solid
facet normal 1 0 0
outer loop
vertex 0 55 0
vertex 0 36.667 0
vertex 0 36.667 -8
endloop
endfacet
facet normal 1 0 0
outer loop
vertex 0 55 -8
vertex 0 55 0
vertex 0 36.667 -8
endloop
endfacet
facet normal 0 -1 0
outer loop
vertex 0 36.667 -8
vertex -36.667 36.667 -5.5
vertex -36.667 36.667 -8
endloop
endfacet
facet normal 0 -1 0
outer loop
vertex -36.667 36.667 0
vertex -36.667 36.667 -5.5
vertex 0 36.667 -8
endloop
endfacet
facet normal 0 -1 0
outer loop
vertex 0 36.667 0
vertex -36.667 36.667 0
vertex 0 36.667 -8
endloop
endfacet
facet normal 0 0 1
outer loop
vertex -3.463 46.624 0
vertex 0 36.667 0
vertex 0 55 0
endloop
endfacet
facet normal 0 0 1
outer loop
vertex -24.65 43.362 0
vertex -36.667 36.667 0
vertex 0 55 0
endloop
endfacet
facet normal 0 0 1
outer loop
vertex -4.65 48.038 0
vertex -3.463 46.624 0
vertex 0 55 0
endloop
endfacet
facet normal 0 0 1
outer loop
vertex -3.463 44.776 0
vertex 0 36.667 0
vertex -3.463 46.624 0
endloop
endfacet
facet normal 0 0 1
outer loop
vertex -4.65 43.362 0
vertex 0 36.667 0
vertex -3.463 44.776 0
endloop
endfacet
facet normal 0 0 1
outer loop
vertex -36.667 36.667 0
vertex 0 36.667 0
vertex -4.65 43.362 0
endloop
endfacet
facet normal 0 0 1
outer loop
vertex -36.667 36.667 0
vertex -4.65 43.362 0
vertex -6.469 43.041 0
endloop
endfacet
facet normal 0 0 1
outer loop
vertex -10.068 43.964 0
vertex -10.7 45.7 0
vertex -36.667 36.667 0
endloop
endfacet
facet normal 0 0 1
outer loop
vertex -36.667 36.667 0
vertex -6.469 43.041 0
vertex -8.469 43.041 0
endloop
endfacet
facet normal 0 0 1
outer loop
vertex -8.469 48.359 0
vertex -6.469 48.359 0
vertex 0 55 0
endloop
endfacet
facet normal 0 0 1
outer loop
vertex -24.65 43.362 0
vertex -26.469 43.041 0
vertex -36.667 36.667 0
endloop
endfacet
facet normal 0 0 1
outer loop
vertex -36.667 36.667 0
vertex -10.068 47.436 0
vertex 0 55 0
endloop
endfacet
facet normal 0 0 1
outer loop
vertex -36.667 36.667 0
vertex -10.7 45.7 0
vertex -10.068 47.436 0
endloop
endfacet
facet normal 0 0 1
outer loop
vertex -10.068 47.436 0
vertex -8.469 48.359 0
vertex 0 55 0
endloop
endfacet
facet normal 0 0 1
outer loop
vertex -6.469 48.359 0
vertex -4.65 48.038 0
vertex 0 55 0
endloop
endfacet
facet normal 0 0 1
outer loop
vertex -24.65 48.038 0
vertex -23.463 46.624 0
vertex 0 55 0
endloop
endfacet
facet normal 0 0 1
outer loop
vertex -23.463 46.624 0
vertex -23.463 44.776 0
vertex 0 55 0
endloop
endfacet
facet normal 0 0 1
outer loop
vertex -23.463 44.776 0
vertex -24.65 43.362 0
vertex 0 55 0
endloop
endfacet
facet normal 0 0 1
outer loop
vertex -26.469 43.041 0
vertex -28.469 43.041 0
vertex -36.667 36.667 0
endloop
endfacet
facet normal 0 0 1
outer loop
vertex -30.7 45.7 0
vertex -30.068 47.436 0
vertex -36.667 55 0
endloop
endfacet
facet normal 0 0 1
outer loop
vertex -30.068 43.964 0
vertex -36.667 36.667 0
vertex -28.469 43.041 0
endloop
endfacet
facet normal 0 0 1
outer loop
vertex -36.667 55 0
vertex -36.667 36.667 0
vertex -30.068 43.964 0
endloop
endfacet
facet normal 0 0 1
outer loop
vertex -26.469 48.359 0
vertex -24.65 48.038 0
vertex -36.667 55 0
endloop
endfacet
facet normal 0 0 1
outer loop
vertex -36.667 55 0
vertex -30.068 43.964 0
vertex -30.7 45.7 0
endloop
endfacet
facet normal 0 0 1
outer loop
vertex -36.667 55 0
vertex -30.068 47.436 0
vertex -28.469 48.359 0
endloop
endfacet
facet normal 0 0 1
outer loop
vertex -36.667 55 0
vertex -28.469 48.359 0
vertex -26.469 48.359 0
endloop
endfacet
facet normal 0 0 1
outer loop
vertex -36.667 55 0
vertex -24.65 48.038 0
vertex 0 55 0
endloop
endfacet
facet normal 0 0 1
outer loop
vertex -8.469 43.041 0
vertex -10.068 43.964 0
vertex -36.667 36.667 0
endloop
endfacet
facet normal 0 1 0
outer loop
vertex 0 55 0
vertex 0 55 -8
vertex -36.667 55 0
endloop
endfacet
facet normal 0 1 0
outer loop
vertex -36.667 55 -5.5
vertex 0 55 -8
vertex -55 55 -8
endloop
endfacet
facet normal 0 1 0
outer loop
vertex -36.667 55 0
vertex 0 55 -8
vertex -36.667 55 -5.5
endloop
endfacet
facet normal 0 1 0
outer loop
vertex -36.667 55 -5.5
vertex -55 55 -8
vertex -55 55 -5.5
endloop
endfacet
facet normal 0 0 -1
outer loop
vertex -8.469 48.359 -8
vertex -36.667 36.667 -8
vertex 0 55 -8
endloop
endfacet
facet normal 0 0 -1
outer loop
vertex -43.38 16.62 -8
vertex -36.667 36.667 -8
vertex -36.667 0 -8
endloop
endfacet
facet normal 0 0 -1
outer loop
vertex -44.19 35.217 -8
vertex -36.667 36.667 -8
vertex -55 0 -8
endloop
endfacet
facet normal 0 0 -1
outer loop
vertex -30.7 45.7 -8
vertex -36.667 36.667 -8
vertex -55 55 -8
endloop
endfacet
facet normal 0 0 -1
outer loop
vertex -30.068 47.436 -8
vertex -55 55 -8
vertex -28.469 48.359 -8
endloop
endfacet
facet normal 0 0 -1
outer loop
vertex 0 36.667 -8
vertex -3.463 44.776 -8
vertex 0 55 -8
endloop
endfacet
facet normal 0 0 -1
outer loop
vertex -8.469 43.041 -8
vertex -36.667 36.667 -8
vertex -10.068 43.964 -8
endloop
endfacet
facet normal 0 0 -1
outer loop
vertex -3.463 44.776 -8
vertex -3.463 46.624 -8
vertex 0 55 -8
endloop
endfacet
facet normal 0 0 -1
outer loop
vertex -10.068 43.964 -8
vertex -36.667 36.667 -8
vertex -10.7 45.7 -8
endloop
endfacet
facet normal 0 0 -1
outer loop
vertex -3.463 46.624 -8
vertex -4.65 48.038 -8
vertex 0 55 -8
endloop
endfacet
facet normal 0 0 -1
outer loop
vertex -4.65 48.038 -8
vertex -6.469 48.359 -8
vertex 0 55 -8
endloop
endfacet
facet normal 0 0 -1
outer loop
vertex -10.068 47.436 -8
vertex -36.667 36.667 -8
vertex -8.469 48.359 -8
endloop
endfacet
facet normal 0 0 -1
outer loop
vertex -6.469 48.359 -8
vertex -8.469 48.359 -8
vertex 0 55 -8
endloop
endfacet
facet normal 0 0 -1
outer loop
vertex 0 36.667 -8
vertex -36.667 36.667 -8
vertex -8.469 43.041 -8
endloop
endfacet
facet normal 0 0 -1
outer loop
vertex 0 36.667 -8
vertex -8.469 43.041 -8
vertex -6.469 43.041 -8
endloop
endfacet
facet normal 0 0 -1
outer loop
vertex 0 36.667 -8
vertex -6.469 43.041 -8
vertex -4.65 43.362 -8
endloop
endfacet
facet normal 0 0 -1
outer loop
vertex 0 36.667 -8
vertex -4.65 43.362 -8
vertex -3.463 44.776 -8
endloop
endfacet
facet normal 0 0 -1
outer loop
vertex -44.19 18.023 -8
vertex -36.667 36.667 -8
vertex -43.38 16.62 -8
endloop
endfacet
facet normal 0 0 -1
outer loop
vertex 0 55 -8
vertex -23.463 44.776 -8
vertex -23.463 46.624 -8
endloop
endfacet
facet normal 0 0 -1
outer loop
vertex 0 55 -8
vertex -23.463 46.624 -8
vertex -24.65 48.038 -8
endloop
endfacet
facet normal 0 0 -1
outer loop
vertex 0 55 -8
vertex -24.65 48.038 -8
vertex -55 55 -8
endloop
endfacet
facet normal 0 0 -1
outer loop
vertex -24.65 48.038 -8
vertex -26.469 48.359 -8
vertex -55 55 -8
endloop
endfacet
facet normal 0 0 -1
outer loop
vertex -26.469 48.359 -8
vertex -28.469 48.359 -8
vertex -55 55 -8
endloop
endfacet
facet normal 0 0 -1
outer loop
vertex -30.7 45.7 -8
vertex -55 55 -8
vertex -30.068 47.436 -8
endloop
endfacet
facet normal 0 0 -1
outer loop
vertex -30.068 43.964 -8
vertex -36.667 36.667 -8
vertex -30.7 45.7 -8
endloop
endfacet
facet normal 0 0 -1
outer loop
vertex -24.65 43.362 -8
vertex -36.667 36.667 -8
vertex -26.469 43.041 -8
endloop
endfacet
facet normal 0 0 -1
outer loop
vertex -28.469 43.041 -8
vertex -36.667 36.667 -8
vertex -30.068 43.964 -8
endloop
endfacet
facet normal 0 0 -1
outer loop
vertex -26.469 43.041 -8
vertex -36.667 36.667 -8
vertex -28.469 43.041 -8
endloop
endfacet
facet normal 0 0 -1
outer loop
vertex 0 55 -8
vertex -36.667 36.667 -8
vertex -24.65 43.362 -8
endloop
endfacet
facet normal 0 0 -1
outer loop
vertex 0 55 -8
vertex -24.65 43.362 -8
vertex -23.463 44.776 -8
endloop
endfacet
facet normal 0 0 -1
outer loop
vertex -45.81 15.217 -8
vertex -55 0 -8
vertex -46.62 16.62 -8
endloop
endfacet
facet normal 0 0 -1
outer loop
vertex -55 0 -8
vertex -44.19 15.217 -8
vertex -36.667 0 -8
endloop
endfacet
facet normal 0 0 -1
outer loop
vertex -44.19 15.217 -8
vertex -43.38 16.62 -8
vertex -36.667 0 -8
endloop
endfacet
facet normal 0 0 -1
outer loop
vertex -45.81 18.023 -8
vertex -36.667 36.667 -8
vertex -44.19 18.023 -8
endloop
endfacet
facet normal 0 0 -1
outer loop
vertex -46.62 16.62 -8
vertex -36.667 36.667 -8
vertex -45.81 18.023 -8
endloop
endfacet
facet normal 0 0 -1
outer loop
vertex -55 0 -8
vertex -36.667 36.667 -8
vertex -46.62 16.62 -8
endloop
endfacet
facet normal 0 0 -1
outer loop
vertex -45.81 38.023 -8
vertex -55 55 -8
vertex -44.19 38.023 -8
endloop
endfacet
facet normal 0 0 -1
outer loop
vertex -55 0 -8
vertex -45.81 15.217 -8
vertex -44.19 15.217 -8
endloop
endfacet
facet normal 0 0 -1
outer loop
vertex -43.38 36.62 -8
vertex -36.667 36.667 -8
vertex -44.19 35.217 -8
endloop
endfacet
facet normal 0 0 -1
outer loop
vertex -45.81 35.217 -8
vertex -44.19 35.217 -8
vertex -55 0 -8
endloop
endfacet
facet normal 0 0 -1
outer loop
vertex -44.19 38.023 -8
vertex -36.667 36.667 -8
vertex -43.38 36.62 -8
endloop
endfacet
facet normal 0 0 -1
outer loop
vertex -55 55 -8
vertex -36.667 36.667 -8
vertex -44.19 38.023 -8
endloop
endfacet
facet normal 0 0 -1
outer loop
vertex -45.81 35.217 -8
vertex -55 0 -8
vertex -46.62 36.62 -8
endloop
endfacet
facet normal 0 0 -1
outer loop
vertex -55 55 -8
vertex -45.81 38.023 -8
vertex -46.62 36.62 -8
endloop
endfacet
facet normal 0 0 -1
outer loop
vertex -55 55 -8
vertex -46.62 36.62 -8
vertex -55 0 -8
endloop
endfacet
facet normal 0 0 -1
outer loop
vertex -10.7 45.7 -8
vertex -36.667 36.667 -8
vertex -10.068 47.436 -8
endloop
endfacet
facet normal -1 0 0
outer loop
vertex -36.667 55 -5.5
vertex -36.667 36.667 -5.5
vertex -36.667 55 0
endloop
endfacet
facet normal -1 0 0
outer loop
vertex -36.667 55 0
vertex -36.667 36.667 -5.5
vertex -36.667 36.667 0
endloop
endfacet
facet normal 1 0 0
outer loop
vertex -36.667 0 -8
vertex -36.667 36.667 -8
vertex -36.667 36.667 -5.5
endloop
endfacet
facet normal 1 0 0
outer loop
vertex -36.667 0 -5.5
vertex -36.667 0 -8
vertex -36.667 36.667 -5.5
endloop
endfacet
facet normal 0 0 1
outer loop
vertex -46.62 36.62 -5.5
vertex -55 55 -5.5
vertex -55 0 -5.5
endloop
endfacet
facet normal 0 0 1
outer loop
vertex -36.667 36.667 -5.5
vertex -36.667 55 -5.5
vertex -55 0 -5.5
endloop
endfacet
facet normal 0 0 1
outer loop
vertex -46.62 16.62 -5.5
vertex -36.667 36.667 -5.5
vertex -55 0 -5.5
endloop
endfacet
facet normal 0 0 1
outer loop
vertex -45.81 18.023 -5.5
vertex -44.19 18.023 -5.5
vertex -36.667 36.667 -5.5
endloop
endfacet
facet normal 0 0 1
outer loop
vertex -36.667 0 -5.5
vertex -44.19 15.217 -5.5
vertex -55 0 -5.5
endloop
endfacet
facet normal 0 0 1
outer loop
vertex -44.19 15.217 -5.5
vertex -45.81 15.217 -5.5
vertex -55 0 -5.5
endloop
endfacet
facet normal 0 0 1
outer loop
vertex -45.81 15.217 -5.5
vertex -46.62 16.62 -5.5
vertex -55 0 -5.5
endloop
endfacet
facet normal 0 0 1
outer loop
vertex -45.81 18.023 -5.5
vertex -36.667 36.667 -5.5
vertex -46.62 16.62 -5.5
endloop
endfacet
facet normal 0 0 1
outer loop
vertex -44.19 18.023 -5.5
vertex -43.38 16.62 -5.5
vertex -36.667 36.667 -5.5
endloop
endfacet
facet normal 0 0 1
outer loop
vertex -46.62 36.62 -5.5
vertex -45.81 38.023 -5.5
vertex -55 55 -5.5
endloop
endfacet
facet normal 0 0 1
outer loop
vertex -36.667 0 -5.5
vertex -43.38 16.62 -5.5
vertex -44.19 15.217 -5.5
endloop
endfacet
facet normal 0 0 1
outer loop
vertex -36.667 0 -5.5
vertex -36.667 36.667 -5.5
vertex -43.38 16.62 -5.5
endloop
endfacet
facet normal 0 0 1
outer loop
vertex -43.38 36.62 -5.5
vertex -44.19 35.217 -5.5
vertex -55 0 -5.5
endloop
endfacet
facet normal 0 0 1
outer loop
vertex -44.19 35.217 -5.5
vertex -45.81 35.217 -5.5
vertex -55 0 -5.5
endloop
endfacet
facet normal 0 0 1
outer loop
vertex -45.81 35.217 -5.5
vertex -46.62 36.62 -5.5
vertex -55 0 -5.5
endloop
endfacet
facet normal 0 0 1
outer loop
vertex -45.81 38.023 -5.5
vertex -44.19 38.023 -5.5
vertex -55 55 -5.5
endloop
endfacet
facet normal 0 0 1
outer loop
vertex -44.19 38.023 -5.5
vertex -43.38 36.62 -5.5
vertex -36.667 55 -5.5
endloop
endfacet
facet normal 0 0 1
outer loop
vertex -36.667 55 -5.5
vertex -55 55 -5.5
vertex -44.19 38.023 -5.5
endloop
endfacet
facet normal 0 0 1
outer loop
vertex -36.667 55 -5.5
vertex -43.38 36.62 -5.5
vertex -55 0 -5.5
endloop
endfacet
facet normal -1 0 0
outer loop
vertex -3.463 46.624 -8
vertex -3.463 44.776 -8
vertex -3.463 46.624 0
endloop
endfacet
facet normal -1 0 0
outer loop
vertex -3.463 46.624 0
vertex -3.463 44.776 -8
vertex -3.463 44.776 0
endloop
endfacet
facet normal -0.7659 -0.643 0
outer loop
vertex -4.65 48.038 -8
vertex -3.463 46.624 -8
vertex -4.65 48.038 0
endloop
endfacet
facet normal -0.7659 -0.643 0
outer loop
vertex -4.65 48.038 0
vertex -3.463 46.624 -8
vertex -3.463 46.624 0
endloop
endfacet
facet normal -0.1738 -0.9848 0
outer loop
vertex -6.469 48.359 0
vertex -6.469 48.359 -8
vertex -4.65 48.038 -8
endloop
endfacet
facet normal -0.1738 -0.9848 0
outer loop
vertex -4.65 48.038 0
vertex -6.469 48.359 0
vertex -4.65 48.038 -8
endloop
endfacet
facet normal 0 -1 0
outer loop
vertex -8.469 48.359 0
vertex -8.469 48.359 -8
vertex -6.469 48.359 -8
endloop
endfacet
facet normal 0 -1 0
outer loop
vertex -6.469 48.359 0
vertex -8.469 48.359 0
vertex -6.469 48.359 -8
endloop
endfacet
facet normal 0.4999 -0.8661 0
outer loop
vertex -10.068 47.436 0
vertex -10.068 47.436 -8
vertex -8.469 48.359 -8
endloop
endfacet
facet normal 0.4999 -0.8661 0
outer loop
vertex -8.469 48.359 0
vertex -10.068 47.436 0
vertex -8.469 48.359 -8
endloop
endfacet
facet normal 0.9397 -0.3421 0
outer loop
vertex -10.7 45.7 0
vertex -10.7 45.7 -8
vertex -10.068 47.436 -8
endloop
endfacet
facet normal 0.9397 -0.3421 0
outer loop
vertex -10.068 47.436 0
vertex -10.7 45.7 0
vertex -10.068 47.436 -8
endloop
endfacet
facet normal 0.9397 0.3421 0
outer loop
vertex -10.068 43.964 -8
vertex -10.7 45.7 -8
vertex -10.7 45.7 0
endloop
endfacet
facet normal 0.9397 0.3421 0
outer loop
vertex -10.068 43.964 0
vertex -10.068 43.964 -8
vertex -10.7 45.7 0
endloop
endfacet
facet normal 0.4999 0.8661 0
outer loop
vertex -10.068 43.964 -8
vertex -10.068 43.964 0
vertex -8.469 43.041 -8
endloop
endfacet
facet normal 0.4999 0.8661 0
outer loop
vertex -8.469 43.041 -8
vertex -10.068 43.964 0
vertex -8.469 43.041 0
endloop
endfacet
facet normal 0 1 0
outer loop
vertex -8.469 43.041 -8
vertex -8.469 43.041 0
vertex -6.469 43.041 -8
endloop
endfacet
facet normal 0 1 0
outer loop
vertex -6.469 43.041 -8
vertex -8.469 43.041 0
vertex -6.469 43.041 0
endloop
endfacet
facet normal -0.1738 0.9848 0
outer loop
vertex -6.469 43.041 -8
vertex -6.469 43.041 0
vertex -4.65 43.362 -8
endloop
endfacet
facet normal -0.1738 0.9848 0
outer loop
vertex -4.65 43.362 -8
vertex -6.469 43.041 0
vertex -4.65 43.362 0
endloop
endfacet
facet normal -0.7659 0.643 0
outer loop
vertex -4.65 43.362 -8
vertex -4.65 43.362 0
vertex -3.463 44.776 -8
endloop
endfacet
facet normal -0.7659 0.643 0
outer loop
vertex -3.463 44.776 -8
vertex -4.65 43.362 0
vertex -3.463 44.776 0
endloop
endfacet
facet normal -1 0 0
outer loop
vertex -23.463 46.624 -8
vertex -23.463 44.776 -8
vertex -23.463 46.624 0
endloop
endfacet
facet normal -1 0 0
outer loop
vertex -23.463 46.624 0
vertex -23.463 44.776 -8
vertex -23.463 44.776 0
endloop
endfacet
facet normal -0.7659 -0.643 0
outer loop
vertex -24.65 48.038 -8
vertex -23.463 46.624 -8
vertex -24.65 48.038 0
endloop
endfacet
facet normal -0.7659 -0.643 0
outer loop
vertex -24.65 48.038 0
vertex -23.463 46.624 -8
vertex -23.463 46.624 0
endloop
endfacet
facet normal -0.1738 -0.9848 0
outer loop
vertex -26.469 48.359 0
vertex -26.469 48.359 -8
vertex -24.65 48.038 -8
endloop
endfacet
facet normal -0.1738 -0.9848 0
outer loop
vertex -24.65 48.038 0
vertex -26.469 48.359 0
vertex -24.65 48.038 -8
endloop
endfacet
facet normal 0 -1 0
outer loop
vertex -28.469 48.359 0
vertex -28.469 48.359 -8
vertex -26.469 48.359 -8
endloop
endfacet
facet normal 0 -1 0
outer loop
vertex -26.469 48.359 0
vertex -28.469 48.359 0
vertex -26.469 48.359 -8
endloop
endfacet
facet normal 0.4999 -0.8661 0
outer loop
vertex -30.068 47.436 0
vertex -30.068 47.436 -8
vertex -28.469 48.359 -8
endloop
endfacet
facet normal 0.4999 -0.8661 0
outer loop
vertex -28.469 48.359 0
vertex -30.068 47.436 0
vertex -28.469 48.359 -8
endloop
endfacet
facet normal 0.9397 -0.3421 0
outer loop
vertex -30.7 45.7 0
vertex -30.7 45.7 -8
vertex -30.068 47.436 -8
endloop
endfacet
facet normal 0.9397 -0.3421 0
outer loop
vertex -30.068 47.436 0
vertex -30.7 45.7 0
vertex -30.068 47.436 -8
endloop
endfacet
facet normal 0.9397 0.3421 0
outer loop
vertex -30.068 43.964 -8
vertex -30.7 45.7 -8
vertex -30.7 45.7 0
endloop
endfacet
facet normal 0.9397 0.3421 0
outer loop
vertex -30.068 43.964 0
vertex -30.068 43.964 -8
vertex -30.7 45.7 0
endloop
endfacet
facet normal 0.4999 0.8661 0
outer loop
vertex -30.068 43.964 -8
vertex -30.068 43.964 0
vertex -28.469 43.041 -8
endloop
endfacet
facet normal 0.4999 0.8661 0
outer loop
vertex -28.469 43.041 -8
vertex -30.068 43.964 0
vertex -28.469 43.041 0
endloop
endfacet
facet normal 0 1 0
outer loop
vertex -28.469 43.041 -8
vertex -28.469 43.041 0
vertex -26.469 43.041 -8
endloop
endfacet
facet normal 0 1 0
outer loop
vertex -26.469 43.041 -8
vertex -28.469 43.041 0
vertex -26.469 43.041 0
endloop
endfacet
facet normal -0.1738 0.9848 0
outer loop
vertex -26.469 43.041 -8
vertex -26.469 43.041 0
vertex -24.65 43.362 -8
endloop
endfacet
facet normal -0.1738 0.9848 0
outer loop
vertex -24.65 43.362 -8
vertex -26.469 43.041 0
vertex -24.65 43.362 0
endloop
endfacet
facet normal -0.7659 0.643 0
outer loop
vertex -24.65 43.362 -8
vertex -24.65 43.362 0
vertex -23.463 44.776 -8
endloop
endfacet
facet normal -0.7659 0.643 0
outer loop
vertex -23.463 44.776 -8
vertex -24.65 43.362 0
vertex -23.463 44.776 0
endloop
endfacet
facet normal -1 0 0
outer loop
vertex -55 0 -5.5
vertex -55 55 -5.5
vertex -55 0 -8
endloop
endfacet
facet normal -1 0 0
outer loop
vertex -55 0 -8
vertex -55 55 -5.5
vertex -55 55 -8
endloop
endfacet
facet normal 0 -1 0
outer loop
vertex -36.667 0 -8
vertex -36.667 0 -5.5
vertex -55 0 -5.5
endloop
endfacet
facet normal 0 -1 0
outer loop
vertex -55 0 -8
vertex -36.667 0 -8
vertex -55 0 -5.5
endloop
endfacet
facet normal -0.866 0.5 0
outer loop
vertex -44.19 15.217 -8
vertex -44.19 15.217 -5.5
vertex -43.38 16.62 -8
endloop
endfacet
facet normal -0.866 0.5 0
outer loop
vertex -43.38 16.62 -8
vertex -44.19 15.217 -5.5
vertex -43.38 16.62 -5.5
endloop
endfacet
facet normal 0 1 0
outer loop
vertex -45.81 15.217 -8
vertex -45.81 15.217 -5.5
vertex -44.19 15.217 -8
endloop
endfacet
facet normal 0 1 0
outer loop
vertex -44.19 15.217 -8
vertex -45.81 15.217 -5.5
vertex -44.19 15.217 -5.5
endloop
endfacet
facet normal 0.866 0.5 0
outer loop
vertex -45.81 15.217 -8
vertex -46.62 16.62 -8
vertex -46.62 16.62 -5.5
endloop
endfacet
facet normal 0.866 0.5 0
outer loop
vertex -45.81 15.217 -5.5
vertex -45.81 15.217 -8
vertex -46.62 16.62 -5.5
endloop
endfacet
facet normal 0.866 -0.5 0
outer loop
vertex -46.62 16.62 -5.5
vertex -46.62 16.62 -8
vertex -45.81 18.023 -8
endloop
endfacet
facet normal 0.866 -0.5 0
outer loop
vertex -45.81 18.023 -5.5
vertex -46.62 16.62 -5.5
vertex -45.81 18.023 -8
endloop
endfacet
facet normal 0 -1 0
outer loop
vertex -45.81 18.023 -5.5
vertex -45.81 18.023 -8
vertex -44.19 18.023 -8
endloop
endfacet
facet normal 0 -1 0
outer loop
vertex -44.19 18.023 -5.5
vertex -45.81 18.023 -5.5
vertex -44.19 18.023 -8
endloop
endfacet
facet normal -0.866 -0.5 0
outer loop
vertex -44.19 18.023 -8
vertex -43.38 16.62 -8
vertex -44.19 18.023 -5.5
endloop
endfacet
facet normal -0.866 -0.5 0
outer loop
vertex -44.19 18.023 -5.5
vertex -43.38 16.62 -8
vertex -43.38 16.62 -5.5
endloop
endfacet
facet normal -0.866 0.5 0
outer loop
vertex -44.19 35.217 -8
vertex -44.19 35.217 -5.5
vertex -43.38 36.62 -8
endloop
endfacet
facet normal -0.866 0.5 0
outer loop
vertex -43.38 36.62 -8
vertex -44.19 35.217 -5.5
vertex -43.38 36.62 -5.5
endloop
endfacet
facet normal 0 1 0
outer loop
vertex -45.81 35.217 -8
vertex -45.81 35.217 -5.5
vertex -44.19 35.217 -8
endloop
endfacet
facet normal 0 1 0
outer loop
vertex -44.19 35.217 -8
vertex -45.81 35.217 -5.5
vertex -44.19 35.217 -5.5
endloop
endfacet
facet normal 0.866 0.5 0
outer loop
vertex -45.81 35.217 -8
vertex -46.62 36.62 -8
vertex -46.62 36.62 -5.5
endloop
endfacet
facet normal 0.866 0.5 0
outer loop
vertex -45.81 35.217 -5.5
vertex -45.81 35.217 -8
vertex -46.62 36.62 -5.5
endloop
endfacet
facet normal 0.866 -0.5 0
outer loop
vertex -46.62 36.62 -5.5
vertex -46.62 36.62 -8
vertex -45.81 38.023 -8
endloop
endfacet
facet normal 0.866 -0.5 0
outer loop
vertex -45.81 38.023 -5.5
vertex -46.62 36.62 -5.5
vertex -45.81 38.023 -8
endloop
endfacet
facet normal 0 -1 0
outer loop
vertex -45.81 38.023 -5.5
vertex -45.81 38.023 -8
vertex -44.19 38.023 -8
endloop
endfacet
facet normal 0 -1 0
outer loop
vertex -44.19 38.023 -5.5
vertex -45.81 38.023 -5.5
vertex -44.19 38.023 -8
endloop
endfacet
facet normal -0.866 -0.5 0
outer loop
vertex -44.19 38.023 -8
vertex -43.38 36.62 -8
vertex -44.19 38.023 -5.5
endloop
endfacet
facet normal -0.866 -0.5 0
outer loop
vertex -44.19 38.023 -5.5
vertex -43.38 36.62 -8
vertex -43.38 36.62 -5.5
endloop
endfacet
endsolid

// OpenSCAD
l1=55;
l2=55;
h=8;
r5=2.5*1.08;
r3=1.5*1.08;
rotate([0,180,0]){
difference(){
cube([l1,l2,h]);
translate([-l1/3,-l2/3,0]){cube([l1,l2,h]);}
translate([l1*2/3,0,-2.5]){cube([l1,l2,h]);}
hull(){for(i=[0:1]){translate([8-(2*(1-i)),38+(5+r5),0]){cylinder(2*h,r5,r5,true);}}}
hull(){for(i=[0:1]){translate([28-(2*(1-i)),38+(5+r5),0]){cylinder(2*h,r5,r5,true);}}}
translate([45,10+(5+r3),0]){cylinder(2*h,r3,r3,true);}
translate([45,30+(5+r3),0]){cylinder(2*h,r3,r3,true);}
}}

//1.8
